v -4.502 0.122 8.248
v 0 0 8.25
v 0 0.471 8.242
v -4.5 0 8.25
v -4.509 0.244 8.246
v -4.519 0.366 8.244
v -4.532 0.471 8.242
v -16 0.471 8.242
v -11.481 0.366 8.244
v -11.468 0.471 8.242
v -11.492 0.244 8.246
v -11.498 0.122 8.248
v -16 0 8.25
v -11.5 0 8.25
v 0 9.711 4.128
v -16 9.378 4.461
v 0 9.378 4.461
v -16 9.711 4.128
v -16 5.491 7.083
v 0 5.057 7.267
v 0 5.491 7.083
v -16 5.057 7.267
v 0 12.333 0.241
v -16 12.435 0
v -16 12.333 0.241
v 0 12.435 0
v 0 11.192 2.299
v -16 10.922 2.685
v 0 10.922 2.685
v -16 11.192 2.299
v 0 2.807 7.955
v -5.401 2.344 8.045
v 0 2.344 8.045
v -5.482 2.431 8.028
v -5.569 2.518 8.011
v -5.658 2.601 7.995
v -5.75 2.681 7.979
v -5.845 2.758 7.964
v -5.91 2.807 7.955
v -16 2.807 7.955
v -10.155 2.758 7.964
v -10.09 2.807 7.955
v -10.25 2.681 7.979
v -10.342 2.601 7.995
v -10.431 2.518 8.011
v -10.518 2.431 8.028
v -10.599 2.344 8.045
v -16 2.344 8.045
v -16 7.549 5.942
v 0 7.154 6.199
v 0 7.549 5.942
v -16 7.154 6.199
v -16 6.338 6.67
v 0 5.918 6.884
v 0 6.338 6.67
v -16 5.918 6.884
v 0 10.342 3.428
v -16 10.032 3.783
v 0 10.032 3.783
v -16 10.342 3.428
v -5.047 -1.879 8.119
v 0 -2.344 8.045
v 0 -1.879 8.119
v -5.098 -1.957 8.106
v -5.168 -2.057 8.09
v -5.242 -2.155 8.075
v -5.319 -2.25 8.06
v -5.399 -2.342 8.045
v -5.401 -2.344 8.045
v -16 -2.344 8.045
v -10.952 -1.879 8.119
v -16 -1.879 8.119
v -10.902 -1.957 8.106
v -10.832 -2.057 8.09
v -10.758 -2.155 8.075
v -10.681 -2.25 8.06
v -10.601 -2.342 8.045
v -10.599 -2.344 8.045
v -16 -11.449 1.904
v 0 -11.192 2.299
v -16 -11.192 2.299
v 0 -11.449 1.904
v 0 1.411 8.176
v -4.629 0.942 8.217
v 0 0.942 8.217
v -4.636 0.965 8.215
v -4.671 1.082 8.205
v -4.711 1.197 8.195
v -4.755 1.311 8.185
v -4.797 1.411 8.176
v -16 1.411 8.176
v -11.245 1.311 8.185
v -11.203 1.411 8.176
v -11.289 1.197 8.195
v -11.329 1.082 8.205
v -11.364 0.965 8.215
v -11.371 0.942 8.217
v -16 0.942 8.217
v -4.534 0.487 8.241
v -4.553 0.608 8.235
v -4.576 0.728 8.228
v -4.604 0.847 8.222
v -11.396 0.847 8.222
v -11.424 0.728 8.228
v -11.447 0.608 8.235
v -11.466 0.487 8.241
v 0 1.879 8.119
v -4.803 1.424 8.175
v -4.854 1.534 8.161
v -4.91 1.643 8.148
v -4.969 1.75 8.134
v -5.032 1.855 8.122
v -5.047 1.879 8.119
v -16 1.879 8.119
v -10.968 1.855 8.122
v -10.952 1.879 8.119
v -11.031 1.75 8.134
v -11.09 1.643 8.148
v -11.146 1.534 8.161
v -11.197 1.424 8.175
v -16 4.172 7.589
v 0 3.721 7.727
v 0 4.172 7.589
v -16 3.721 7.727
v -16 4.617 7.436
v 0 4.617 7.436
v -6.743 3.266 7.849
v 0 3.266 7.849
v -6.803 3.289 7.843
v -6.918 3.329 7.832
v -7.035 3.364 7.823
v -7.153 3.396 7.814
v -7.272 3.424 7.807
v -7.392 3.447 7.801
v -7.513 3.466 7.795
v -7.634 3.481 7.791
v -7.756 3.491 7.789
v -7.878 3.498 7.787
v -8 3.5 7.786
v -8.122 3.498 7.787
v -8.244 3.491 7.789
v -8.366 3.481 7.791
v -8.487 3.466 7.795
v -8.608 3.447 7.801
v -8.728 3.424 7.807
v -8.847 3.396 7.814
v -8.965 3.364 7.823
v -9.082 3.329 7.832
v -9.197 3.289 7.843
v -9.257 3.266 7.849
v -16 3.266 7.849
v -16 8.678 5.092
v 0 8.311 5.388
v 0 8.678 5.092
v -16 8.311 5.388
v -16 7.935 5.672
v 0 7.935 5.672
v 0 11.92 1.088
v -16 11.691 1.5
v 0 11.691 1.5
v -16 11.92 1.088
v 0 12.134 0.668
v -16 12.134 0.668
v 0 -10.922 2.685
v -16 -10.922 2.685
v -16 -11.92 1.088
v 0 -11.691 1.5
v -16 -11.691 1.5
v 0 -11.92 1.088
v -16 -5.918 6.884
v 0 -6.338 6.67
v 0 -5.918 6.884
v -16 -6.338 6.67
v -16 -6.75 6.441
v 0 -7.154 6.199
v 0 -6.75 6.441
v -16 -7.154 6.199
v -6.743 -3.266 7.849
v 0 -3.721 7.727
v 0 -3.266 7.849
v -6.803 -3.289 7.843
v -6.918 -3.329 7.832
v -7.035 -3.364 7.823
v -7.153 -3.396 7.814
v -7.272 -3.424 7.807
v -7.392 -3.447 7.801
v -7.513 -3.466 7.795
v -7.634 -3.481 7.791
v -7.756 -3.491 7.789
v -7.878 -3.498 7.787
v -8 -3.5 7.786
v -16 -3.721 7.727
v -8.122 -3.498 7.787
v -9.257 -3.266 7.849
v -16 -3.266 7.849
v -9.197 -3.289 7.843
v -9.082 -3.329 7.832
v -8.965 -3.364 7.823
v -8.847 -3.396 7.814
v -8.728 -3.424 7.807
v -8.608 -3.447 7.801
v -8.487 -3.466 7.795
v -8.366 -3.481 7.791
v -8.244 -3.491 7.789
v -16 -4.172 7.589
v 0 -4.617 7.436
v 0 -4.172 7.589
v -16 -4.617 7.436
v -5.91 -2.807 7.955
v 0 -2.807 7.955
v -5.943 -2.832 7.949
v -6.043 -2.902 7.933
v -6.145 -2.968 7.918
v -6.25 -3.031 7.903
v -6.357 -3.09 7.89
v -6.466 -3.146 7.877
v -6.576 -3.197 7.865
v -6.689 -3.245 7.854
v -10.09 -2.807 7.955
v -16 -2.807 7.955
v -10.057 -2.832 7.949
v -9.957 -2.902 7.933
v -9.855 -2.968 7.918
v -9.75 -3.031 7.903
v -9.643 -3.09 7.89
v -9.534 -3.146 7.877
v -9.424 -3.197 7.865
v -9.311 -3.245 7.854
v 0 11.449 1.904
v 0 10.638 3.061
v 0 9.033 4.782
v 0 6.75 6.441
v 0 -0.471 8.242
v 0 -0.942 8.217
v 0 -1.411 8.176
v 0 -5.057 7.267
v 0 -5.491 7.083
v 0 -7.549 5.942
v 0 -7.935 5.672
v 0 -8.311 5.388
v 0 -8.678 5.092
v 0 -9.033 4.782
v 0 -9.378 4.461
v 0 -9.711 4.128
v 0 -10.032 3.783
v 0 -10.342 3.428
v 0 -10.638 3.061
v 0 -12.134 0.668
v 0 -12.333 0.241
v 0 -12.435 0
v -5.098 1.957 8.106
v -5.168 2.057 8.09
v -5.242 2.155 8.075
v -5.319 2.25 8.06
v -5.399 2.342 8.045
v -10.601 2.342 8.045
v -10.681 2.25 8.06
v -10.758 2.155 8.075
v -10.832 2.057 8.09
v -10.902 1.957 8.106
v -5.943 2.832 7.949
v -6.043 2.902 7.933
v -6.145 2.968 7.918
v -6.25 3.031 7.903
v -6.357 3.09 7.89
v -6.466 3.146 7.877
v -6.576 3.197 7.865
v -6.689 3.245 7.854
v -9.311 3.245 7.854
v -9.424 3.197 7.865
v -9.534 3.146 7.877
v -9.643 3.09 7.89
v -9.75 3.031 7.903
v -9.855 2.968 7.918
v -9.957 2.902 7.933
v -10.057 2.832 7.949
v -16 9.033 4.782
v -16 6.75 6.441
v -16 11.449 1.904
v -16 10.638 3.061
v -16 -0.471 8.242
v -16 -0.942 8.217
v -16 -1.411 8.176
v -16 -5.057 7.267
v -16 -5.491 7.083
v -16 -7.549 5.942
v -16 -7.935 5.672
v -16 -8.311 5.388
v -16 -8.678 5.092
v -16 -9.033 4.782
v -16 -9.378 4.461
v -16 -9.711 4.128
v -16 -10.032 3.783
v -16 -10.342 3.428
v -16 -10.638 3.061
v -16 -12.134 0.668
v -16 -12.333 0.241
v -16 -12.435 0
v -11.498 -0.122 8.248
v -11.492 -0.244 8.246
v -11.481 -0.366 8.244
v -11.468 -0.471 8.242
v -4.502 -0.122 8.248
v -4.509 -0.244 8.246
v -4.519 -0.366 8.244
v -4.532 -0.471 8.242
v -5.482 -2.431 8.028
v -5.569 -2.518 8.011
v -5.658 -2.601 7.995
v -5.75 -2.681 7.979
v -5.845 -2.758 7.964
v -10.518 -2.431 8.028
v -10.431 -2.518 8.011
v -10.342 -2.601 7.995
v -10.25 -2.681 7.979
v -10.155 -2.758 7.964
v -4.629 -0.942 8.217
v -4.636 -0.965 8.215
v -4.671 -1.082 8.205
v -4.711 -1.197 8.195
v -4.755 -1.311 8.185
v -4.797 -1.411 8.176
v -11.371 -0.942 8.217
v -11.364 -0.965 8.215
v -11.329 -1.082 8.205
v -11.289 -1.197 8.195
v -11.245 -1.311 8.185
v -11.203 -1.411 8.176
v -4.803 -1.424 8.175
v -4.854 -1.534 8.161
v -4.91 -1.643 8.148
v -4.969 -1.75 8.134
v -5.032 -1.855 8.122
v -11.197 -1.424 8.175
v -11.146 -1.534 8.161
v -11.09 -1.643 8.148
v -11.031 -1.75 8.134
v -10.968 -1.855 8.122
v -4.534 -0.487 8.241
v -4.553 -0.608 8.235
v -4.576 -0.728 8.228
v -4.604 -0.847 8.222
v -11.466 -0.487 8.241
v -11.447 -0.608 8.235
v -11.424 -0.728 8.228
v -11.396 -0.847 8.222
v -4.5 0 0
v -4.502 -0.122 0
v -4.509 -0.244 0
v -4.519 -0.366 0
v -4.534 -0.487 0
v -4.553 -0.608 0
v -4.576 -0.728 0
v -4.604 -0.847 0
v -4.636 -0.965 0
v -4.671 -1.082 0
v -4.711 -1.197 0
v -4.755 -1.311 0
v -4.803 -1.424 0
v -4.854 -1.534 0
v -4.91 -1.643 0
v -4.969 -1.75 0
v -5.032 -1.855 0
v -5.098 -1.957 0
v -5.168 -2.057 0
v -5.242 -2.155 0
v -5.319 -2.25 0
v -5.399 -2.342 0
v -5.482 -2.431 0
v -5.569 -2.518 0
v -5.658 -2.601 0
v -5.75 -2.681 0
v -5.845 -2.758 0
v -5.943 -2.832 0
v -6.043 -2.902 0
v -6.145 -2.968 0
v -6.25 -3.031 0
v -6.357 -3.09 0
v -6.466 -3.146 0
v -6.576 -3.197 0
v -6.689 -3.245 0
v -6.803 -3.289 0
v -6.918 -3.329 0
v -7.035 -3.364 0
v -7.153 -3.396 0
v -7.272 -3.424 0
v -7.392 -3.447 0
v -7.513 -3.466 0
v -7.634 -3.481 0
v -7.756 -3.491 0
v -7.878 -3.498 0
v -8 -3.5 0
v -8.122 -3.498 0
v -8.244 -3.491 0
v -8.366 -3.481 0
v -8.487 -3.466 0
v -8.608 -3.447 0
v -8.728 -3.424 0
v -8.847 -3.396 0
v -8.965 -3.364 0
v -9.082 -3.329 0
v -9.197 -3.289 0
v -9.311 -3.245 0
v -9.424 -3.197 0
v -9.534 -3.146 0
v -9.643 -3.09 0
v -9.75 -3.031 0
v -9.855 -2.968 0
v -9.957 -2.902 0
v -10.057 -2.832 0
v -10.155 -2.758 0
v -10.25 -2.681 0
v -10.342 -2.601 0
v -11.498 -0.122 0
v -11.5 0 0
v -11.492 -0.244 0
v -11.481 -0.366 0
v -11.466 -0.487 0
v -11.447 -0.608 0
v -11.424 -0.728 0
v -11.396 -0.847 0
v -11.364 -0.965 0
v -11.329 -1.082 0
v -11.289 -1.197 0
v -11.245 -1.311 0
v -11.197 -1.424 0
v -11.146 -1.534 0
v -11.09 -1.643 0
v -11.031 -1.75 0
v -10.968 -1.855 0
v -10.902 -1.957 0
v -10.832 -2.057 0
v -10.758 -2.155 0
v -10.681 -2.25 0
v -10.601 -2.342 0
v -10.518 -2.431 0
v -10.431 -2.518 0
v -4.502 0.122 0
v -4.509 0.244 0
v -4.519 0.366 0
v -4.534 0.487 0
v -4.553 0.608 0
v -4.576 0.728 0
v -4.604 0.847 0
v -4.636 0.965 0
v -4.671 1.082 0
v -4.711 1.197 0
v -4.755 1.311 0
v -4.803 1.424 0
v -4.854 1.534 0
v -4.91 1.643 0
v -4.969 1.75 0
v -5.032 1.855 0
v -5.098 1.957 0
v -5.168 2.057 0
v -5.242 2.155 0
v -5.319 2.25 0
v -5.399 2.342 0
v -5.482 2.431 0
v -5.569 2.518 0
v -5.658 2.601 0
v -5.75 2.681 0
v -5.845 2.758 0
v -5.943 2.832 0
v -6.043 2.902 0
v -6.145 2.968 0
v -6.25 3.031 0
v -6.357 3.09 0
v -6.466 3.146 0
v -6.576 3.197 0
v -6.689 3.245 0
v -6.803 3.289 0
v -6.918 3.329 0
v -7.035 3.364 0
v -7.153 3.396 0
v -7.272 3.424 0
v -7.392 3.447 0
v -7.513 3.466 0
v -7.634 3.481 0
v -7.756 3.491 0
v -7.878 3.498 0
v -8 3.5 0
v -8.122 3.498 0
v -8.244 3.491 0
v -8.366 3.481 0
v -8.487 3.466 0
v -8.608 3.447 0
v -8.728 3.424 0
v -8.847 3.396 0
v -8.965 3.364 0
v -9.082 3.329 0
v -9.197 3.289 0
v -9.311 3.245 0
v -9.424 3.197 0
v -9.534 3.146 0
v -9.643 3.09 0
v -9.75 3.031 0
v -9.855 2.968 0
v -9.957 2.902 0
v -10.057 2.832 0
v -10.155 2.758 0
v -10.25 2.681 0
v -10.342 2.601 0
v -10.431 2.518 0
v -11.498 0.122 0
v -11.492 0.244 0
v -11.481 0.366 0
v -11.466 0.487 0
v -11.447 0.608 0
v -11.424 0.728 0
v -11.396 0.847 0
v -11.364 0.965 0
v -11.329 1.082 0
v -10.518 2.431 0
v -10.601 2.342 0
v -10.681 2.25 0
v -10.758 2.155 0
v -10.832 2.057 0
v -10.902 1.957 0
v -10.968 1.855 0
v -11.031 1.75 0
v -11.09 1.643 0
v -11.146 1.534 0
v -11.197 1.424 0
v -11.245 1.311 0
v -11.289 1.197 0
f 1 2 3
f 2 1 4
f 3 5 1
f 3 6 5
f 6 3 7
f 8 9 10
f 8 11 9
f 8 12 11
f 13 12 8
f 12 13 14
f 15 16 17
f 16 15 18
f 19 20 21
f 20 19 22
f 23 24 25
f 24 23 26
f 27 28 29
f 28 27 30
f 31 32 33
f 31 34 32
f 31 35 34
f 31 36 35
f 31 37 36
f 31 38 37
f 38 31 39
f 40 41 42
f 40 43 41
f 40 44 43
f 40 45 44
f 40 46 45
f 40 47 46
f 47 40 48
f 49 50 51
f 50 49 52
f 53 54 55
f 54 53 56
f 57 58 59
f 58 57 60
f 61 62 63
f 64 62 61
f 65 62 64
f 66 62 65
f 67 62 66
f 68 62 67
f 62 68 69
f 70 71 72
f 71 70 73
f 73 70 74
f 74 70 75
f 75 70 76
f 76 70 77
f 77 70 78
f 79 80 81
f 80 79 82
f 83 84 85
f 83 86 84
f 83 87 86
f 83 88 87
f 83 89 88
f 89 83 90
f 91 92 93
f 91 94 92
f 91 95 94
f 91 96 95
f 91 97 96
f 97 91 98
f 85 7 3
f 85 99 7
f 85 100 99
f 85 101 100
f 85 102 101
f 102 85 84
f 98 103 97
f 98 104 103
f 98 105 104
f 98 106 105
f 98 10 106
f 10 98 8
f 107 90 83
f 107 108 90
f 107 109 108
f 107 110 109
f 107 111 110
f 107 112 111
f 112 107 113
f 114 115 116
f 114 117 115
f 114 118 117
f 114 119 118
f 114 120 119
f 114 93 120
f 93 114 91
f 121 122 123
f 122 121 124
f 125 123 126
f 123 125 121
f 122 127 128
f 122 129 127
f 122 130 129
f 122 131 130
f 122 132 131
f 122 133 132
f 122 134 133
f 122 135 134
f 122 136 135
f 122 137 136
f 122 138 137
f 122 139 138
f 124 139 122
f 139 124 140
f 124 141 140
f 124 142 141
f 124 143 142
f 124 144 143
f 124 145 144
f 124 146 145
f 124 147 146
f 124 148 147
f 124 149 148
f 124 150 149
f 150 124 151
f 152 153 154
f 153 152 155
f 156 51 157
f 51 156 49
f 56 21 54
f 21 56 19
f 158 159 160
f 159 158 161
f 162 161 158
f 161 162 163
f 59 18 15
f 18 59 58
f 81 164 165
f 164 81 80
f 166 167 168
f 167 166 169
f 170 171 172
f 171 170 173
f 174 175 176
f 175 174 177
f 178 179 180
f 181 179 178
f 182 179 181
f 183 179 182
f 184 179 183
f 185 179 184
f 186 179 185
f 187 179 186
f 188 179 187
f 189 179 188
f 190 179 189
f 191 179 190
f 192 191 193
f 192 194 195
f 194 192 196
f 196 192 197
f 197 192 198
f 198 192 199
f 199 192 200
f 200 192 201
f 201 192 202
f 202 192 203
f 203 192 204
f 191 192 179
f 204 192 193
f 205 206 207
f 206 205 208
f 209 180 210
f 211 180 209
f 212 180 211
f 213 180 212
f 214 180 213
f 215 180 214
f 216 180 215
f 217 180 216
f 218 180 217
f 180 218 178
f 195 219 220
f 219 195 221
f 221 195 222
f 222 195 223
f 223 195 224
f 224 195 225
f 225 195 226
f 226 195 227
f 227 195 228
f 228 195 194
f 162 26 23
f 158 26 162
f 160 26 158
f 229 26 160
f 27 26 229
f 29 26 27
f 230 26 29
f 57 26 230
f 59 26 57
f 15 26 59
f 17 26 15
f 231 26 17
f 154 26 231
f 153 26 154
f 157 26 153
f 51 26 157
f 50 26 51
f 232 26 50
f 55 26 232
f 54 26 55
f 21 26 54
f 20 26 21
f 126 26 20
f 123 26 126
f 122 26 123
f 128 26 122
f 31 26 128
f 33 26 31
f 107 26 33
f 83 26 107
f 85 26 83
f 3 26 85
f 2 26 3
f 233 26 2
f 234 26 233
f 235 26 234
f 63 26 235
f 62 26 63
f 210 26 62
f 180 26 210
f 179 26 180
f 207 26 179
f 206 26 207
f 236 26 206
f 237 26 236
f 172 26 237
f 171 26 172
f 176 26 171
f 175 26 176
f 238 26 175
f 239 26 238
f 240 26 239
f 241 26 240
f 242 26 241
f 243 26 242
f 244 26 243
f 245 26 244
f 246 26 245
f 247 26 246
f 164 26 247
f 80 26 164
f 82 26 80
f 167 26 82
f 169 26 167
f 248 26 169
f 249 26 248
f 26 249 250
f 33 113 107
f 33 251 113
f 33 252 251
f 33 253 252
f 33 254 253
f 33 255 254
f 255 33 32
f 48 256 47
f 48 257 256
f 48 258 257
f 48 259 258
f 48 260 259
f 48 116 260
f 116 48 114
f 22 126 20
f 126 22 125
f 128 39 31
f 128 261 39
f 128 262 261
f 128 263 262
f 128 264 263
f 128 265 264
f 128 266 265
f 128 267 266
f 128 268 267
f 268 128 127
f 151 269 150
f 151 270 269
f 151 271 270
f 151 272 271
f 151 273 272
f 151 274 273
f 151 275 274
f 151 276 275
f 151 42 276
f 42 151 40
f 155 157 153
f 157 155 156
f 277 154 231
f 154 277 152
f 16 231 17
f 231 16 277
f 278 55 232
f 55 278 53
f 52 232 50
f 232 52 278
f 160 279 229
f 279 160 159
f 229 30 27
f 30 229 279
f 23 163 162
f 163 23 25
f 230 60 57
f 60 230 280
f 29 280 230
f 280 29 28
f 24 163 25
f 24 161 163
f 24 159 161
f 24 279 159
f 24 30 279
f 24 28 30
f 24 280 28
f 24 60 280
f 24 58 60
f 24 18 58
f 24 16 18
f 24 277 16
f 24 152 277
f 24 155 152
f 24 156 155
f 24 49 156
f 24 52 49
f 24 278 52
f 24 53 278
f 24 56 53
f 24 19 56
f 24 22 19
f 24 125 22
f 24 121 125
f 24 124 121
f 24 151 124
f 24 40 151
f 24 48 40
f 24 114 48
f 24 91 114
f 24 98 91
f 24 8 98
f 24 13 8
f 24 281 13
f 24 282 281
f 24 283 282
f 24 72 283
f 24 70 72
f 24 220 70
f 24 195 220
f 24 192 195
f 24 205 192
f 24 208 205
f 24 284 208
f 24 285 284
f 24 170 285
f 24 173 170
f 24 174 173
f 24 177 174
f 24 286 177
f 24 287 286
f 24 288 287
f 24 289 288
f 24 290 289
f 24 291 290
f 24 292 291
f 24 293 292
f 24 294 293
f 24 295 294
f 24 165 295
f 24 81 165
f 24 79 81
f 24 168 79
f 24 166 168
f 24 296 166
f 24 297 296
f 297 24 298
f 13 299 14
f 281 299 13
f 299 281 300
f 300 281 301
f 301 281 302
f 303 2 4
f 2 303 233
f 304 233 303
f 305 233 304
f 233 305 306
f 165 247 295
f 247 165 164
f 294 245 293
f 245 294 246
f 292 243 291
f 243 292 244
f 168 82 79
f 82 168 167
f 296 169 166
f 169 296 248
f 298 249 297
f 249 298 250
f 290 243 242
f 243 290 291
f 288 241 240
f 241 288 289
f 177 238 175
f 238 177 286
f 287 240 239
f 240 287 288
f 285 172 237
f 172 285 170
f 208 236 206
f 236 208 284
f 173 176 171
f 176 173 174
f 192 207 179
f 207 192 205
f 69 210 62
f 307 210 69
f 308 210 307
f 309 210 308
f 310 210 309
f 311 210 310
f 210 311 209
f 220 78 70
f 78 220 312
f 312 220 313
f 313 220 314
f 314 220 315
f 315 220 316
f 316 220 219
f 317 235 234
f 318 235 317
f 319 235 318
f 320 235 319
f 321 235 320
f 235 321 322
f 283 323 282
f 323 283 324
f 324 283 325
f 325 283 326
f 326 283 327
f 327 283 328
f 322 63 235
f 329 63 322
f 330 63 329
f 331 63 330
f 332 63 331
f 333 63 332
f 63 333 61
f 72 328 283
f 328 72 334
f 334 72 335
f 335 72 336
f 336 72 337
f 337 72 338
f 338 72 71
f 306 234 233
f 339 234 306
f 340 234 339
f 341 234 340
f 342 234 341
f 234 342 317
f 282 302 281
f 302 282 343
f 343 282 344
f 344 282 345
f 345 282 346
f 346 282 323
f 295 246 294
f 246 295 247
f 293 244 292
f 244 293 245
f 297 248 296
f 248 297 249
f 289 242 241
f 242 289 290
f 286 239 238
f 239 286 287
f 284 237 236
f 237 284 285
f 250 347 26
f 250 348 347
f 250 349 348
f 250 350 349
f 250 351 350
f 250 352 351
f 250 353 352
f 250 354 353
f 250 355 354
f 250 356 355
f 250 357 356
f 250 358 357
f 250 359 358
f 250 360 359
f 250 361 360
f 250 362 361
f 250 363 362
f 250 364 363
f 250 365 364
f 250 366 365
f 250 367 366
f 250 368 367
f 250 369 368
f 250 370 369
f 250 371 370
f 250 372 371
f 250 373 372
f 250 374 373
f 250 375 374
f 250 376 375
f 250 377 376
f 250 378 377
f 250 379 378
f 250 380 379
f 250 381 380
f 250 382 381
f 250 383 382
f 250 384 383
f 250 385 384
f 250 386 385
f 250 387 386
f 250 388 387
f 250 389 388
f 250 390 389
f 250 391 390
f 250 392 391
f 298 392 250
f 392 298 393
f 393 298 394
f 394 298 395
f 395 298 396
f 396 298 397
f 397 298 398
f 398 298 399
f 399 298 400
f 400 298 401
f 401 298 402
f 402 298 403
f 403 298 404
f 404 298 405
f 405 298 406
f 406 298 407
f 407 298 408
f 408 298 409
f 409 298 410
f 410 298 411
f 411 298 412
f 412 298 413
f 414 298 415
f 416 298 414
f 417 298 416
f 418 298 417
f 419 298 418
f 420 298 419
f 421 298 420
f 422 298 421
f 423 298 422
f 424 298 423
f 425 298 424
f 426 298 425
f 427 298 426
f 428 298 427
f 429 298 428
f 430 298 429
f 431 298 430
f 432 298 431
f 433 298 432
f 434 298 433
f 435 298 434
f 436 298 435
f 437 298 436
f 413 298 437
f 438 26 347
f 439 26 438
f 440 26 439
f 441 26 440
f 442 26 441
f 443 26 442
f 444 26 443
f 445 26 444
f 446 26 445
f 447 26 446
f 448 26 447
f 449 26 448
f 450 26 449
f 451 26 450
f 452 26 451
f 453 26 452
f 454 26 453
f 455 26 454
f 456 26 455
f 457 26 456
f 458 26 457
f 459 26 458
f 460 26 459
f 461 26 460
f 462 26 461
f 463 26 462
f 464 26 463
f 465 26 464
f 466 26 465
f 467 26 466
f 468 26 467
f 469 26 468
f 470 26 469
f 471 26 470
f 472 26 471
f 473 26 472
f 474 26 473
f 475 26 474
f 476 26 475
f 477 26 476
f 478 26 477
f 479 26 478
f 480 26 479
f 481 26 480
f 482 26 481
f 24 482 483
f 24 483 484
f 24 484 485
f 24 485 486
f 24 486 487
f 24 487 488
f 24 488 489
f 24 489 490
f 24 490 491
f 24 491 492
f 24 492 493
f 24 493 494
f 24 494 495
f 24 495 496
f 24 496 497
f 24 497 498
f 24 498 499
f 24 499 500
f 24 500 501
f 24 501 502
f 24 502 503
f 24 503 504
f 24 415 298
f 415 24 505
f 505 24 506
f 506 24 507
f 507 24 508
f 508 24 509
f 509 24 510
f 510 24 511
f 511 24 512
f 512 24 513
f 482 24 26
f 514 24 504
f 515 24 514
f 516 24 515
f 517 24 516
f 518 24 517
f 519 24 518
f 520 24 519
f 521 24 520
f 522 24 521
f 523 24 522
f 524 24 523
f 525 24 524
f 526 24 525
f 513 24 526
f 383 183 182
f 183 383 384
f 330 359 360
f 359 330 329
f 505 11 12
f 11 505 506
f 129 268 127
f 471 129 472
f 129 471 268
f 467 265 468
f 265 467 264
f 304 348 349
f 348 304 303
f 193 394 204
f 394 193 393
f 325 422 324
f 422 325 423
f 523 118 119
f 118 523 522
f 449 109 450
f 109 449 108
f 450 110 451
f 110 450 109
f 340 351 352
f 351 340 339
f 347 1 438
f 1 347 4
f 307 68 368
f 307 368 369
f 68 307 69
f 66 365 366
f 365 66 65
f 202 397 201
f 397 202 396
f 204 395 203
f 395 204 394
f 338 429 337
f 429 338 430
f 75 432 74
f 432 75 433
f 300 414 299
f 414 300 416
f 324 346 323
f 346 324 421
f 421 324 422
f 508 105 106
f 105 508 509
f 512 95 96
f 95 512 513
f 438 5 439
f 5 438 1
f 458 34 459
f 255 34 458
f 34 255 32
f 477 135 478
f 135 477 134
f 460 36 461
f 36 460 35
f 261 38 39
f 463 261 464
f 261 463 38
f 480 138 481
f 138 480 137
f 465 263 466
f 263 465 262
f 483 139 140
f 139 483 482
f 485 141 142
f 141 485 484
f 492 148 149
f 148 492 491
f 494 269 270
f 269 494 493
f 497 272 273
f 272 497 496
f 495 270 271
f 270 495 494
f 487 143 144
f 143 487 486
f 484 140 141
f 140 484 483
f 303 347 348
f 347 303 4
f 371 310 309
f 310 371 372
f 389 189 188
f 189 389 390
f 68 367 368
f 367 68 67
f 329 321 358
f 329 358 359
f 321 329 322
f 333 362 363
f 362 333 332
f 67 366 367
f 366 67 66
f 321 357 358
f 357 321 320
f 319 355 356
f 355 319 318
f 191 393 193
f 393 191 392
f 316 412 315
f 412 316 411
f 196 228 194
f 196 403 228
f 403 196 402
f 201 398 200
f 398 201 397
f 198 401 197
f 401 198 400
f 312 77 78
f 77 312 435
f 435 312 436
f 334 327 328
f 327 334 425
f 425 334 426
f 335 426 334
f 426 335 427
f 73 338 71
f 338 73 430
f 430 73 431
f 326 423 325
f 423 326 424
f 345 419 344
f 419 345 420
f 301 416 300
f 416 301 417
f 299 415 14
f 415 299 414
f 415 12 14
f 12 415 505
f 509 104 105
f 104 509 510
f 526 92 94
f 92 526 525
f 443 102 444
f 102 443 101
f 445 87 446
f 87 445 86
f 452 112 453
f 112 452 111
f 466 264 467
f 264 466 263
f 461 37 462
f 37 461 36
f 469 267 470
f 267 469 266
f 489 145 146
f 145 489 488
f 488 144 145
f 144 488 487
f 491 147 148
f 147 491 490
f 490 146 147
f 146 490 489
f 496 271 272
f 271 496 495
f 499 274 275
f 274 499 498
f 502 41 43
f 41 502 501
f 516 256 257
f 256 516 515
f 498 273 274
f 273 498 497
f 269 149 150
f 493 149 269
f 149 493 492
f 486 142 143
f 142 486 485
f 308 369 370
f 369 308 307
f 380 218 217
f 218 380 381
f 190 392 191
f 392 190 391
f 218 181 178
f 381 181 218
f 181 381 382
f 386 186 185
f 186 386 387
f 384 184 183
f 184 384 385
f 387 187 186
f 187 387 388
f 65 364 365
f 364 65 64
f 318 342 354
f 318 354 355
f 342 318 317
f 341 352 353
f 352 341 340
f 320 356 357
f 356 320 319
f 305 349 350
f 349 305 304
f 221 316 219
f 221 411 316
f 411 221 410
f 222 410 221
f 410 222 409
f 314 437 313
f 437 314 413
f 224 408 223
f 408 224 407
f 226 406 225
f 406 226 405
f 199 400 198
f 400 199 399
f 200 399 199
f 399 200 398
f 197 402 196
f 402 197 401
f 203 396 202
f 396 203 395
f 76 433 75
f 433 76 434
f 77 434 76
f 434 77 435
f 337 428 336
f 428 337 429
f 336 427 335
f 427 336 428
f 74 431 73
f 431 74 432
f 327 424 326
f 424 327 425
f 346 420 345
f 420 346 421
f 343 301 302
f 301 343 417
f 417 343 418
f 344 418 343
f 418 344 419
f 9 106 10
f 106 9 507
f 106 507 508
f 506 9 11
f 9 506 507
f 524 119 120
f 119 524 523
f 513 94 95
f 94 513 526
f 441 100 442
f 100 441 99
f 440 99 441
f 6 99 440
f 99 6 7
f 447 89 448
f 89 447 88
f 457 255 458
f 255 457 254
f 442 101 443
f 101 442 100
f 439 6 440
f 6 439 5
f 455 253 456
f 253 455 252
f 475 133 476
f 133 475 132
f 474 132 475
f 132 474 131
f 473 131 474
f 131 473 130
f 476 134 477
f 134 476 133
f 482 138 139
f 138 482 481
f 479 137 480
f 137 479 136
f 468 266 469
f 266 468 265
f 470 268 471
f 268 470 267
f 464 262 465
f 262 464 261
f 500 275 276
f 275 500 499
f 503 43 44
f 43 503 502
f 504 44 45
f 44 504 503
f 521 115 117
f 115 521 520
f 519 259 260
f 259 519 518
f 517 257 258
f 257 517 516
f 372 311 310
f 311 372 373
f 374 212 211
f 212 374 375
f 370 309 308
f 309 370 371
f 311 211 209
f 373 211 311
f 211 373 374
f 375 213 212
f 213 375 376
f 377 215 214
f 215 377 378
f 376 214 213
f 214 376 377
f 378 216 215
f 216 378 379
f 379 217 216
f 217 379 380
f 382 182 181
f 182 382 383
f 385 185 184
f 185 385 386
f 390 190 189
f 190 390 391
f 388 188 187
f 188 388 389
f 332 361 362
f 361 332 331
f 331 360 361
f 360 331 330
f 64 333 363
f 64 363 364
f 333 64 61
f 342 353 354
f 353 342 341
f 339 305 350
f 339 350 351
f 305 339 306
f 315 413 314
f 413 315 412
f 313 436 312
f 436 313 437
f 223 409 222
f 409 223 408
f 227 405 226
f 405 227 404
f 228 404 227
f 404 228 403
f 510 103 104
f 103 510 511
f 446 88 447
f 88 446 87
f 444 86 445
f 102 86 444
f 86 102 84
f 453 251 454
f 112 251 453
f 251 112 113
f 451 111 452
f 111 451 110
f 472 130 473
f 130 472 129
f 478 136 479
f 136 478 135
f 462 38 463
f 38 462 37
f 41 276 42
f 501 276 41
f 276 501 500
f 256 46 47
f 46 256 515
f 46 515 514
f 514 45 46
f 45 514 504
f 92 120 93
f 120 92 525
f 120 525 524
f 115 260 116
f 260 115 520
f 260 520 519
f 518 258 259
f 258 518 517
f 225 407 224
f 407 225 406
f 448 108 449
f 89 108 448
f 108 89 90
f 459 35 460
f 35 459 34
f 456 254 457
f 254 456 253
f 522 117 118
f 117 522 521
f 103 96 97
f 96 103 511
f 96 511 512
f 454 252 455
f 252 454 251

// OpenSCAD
$fn = 180;

diameter = 27;
height = 5.25;
thickness = 16;
holeRadius = 3.5;

translate([0, 0, -height - 3]) rotate([0, -90, 0]) difference() {
    translate([3, 0, 0])  cylinder(r=diameter/2, thickness);
    translate([-diameter/2 - height, -diameter/2, -1]) cube([diameter, diameter, thickness + 2]);
    translate([height, 0, thickness/2]) rotate([0, 90, 0]) cylinder(r=holeRadius, 3 * height);    
}
